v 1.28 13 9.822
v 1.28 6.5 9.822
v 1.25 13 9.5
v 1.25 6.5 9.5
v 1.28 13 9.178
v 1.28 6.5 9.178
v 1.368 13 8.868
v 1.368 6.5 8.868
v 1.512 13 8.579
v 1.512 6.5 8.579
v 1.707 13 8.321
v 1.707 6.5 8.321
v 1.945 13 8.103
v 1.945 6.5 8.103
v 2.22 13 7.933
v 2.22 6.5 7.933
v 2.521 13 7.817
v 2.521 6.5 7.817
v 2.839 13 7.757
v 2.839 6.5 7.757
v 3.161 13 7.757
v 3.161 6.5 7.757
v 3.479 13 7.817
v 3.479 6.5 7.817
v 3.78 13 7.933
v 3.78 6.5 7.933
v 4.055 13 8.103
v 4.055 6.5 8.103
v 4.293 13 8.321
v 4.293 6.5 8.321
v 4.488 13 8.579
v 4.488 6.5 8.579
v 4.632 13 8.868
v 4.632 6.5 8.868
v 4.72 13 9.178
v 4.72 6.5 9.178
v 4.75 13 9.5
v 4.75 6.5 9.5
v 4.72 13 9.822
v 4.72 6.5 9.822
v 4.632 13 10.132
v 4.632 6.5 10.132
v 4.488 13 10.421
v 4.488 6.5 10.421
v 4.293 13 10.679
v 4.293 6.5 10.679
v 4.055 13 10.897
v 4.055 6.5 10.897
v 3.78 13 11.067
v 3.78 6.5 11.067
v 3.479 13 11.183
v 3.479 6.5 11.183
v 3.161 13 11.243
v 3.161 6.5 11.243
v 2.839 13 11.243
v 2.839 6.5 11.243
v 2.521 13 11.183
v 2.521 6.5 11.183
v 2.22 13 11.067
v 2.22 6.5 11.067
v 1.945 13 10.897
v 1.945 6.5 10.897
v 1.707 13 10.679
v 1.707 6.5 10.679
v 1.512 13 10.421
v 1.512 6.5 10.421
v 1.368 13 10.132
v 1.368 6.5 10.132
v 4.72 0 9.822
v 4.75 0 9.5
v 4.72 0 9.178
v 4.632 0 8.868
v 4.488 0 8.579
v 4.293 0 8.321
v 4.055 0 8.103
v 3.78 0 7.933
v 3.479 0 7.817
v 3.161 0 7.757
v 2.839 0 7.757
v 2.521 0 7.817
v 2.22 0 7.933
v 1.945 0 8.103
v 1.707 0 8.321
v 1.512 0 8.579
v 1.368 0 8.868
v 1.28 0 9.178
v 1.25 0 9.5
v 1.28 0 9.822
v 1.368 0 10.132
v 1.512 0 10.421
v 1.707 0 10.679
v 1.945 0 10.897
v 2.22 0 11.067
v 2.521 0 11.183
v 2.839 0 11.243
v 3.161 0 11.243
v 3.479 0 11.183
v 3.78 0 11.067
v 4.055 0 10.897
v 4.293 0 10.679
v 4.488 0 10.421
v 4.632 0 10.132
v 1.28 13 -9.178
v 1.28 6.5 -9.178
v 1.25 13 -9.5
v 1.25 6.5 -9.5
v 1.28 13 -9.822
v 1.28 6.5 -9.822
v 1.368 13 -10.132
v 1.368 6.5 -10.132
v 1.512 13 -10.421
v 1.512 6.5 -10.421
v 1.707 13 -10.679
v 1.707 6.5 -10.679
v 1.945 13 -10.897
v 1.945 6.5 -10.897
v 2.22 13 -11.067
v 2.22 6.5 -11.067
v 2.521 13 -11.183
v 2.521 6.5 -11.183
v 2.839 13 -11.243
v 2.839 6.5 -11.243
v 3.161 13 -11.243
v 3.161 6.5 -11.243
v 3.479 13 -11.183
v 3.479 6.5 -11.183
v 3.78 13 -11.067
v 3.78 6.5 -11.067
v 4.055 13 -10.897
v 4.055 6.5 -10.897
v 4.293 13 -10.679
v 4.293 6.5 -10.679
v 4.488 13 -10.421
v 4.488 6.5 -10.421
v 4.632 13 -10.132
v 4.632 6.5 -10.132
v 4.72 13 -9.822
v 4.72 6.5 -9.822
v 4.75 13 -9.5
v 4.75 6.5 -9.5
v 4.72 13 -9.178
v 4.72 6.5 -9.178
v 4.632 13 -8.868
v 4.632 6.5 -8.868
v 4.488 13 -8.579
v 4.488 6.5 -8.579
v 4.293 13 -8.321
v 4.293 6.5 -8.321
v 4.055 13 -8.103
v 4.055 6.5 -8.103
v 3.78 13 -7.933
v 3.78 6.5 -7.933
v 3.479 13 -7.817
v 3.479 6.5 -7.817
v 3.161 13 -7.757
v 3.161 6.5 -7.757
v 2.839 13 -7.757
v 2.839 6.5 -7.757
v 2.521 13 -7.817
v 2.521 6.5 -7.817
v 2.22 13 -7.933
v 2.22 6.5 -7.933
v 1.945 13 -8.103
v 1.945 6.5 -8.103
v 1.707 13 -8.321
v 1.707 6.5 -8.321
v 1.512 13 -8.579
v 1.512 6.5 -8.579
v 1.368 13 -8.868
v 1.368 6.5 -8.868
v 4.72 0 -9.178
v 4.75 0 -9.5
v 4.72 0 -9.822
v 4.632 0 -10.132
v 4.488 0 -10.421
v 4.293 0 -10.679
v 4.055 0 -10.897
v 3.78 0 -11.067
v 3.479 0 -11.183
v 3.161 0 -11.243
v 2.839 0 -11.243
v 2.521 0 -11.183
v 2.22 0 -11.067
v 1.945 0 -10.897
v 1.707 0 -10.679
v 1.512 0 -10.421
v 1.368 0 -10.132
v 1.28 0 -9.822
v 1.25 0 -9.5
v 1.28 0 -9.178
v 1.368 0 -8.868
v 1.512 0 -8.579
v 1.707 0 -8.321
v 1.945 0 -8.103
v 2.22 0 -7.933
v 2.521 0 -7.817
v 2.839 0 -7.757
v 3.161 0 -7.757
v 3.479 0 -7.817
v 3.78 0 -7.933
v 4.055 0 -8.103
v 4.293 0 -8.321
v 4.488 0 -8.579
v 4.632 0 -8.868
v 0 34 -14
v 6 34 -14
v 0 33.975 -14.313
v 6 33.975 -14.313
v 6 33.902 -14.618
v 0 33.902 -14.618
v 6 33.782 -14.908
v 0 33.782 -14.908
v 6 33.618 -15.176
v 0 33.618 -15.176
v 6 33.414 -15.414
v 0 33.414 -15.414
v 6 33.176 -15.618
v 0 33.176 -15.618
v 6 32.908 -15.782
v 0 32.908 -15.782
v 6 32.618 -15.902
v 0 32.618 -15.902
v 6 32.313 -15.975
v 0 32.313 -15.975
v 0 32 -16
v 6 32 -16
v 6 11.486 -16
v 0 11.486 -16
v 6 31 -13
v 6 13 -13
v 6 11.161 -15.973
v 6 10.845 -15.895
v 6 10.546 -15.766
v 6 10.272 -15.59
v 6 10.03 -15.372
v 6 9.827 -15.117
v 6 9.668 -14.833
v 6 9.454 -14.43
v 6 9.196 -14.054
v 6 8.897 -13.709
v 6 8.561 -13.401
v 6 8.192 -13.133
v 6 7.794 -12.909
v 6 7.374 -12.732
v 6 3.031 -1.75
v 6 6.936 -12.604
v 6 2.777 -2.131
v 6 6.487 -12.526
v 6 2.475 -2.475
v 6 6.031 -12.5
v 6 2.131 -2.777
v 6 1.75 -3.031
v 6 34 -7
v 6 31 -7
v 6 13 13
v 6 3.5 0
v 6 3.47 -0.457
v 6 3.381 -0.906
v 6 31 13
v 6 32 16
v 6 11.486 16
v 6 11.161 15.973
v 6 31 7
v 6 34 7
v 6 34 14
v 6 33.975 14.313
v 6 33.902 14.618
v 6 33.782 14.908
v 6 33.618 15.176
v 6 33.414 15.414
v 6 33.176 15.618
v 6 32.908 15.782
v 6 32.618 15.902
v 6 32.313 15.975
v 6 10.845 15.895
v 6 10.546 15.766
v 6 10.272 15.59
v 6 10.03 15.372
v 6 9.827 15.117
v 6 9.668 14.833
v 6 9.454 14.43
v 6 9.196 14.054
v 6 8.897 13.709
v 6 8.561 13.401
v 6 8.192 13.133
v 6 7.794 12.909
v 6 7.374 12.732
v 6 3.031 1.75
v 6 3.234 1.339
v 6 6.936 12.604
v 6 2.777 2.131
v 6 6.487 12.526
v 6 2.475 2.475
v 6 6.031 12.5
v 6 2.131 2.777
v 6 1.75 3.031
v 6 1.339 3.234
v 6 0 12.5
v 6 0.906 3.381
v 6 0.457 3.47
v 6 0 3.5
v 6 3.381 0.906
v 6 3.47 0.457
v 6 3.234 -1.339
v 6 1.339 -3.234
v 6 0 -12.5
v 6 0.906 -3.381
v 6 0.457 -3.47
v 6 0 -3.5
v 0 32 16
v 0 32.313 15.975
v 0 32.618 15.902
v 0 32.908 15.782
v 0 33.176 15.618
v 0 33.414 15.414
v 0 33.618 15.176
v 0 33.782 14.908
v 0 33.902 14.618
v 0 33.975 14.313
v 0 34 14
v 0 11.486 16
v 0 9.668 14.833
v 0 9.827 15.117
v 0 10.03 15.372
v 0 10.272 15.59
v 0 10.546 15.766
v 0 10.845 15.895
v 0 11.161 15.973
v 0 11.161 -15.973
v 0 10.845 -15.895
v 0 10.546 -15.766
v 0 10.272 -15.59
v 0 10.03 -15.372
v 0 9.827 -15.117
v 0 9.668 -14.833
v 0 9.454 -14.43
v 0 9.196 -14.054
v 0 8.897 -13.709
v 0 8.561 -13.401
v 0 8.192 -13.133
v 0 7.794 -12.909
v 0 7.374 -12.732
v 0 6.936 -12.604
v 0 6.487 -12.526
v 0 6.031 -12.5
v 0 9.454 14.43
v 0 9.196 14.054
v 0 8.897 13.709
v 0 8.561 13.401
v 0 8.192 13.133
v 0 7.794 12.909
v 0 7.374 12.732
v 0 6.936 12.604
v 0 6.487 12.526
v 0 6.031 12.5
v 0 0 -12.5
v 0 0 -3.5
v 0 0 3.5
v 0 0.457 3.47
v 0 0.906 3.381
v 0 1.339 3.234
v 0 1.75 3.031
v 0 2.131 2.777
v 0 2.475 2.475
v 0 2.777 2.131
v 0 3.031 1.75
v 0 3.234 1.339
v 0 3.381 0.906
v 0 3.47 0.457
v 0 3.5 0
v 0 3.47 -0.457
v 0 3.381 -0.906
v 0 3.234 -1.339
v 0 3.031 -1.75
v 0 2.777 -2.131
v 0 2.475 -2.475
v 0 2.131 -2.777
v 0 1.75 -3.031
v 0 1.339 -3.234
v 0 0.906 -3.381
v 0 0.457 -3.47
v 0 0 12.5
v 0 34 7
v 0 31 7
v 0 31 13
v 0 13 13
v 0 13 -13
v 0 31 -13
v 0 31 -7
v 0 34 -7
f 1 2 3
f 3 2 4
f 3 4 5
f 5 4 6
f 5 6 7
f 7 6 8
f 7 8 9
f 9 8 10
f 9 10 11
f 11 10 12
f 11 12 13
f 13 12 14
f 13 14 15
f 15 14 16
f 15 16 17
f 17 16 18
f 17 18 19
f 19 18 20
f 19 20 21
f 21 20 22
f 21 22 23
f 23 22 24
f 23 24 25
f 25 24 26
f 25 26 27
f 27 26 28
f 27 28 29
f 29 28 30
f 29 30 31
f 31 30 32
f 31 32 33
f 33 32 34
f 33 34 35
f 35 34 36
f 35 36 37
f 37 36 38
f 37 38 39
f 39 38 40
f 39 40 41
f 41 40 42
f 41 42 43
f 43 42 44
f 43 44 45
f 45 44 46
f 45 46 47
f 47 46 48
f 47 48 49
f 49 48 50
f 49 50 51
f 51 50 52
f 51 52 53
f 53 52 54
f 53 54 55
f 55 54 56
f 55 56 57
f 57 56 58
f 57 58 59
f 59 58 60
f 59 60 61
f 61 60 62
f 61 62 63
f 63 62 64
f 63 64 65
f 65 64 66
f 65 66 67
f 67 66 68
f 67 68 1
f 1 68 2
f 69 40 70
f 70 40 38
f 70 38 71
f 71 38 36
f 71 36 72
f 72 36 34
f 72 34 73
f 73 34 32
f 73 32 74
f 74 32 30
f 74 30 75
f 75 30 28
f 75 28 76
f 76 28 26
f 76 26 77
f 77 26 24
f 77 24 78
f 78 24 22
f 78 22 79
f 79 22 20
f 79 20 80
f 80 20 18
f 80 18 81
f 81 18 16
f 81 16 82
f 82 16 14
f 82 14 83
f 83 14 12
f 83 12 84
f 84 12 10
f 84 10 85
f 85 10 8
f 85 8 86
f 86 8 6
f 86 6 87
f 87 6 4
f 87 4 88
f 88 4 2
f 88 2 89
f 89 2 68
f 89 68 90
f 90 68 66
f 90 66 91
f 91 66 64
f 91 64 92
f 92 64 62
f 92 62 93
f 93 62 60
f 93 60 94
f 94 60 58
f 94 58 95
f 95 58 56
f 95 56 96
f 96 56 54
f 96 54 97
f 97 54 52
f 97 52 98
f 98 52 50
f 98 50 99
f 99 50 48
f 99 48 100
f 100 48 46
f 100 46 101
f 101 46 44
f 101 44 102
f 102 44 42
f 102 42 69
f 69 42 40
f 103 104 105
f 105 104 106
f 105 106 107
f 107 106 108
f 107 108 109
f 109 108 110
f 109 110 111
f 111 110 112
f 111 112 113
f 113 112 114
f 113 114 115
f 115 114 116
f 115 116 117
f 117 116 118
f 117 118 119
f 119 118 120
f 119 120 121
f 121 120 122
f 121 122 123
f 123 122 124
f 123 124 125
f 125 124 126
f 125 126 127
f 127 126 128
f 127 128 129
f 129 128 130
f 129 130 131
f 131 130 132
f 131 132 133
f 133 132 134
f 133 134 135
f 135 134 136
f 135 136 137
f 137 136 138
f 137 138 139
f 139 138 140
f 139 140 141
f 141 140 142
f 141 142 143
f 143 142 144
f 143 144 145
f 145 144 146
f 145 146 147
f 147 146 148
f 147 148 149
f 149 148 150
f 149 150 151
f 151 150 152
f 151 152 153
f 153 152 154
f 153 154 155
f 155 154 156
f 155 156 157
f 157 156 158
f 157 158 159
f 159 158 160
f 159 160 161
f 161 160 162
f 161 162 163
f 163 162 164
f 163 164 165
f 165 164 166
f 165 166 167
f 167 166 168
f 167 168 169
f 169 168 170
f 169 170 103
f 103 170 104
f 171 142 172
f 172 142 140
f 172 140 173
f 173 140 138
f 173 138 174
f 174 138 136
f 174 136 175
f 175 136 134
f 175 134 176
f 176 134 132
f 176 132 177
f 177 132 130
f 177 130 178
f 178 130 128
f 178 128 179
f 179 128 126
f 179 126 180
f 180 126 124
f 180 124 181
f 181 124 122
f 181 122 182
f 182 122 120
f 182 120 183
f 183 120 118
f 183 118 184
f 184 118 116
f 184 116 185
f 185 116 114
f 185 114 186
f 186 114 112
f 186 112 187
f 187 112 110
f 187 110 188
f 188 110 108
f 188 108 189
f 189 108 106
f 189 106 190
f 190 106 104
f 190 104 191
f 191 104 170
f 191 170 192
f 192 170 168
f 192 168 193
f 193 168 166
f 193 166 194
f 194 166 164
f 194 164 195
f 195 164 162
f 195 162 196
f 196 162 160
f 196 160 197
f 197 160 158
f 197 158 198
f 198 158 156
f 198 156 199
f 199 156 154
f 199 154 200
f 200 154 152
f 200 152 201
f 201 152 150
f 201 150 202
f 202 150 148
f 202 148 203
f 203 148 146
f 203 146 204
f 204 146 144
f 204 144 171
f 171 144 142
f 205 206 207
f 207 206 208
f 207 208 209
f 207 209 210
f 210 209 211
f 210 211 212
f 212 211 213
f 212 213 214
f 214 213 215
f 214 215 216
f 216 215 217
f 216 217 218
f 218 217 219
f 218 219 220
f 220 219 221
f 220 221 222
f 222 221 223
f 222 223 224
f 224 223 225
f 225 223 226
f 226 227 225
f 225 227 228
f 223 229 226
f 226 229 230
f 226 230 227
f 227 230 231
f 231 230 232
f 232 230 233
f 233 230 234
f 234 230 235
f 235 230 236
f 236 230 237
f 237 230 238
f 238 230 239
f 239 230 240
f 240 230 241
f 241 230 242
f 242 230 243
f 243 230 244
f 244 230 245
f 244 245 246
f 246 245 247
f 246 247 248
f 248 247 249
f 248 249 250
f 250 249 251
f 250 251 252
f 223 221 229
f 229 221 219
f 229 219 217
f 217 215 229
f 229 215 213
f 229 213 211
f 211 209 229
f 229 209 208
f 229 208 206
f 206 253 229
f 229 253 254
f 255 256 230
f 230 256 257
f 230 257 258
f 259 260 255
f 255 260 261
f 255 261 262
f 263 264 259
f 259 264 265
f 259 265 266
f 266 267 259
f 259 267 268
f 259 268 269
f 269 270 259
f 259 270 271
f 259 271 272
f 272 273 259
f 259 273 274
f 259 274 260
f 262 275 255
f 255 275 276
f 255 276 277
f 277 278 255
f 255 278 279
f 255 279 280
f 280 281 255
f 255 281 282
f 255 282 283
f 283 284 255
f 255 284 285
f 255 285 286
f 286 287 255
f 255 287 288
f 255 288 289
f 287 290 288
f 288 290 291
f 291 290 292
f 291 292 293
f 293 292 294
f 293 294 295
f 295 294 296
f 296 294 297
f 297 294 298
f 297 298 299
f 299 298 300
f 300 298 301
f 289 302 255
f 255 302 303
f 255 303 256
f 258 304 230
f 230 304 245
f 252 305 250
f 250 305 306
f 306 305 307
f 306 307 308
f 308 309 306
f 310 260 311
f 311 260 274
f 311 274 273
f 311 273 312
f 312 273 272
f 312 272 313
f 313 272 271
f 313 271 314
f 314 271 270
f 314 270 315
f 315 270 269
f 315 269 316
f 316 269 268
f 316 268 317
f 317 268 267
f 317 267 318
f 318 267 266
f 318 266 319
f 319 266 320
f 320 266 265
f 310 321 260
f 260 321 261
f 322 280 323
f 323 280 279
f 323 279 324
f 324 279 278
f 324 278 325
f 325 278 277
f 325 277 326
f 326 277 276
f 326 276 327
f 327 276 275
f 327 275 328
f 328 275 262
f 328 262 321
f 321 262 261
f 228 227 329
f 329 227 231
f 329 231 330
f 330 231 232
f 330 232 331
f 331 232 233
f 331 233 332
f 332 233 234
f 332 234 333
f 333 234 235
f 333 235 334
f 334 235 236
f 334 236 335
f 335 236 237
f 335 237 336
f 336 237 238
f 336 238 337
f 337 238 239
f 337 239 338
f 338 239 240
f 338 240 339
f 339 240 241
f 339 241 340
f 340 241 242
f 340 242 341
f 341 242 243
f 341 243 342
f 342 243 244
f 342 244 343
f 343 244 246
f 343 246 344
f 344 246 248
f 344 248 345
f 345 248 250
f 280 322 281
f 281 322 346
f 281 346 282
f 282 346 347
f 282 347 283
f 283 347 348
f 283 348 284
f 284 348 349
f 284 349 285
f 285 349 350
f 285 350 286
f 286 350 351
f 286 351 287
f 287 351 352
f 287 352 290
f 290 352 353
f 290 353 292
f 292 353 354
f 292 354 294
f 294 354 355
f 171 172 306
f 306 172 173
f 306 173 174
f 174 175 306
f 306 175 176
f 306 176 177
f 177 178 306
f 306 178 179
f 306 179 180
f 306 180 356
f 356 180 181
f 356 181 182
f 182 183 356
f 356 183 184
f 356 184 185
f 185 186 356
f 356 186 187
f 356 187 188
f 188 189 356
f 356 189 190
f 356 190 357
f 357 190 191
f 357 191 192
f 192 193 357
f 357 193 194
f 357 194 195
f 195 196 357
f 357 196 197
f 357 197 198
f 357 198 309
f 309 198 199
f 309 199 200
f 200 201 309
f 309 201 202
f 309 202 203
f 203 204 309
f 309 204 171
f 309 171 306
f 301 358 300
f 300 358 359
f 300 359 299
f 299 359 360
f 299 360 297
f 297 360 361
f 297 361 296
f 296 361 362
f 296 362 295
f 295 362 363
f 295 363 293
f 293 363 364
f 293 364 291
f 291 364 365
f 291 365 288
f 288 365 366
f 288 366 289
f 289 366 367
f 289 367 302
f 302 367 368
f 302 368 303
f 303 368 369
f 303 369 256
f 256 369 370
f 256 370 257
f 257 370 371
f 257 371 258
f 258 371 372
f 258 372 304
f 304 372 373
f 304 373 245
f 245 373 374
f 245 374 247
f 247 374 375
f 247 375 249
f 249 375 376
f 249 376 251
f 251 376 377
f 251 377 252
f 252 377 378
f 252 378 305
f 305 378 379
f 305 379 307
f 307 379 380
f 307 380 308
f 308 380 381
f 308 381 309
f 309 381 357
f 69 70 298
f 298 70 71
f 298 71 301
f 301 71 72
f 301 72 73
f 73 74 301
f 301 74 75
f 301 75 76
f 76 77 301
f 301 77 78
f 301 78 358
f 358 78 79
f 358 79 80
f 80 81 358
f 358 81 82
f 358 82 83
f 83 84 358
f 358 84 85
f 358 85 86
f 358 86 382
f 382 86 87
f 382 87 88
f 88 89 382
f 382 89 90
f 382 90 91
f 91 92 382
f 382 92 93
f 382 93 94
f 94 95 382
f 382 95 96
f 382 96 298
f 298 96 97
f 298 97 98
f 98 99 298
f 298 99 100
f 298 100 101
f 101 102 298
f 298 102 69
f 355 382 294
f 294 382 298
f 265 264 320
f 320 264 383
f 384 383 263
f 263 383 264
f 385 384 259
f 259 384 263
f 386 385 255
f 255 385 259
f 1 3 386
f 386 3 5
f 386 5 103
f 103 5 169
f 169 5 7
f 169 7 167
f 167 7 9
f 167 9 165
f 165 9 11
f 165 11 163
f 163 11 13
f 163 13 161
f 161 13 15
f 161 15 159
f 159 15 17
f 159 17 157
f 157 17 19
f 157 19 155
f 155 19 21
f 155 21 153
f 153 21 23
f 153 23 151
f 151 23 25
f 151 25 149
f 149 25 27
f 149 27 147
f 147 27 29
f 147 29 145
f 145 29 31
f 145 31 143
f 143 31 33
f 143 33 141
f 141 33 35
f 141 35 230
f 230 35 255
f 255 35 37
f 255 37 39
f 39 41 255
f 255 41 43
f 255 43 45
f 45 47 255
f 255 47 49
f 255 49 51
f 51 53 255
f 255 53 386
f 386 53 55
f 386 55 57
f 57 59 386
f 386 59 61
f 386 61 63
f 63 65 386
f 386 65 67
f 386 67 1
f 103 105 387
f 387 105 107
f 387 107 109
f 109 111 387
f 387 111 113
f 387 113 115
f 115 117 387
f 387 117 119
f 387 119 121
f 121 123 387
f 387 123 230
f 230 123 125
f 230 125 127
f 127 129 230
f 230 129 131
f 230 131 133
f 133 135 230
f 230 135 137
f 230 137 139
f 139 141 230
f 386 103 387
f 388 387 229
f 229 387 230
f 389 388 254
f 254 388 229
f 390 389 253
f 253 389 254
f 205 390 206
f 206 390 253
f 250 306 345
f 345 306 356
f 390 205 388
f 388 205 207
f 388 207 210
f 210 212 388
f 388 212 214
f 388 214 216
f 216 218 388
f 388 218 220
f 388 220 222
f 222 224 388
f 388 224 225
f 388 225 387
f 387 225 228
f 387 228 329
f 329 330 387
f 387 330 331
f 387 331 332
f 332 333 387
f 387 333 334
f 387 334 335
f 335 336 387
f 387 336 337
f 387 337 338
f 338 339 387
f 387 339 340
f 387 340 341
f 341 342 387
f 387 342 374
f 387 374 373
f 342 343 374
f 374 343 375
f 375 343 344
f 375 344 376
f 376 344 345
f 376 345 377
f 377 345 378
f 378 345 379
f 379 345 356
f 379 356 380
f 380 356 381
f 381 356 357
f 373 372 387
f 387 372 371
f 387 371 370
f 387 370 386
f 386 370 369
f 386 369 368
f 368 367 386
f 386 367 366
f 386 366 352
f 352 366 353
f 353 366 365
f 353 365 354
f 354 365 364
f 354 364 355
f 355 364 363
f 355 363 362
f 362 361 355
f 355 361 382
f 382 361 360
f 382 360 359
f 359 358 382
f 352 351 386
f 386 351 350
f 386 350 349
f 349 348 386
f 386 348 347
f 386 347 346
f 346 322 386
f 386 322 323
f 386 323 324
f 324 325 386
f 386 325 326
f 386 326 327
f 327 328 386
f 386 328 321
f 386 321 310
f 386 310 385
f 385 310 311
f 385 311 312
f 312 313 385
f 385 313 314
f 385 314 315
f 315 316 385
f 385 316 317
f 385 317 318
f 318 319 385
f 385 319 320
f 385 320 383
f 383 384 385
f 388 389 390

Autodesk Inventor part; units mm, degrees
ref_plane "YZ Plane" through (0, 0, 0) normal (1, 0, 0) x (0, 1, 0)
ref_plane "XZ Plane" through (0, 0, 0) normal (0, 1, 0) x (-1, 0, 0)
ref_plane "XY Plane" through (0, 0, 0) normal (0, 0, 1) x (1, 0, 0)
sketch "Esquisse1" plane through (0, 0, 0) normal (1, 0, 0) x (0, 1, 0)
  arc A0 (0, -3.5) -> (0, 3.5) centre (0, 0) ccw
  line L0 (0, 6.2947) -> (0, -6.5718) construction
  line L1 (0, 3.5) -> (0, 12.5)
  line L2 (0, 12.5) -> (10, 12.5)
  line L3 (10, -12.5) -> (0, -12.5)
  line L4 (0, -12.5) -> (0, -3.5)
  line L5 (10, 12.5) -> (10, 16)
  line L6 (10, 16) -> (34, 16)
  line L7 (34, 16) -> (34, 7)
  line L8 (34, 7) -> (31, 7)
  line L9 (31, 7) -> (31, 13)
  line L10 (31, 13) -> (13, 13)
  line L11 (13, 13) -> (13, -13)
  line L12 (13, -13) -> (31, -13)
  line L13 (31, -13) -> (31, -7)
  line L14 (31, -7) -> (34, -7)
  line L15 (34, -7) -> (34, -16)
  line L16 (34, -16) -> (10, -16)
  line L17 (10, -16) -> (10, -12.5)
  point P0 (22, 13)
  dimension "d16" = 3.5
  dimension "d17" = 25
  dimension "d18" = 26
  dimension "d19" = 6
  dimension "d20" = 3
  dimension "d21" = 3
  dimension "d22" = 3
  dimension "d23" = 18
  dimension "d24" = 3
  dimension "d25" = 10
extrude "Extrusion1" add sketch "Esquisse1" along normal blind 6
fillet "Congé1" radius 4 2 edges at (3, 10, 12.5) (3, 10, -12.5)
fillet "Congé2" radius 2 2 edges at (3, 10, -16) (3, 10, 16)
fillet "Congé3" radius 2 2 edges at (3, 34, 16) (3, 34, -16)
sketch "Esquisse2" plane through (0, 0, -12.5) normal (0, -1, 0) x (1, 0, 0)
  circle A0 centre (3, 3) radius 1.75
  line L0 (0, -1.5) -> (0, 5.5) projected
  line L1 (6, -0.5) -> (6, 25.5) projected
  line L2 (0, -0.5) -> (0, 25.5) projected
  line L3 (0, 0) -> (6, 0) projected
  point P0 (0, 12.5)
  point P1 (3, 3)
  dimension "d28" = 3.5
  dimension "d31" = 3
  dimension "d32" = 3
extrude "Extrusion2" cut sketch "Esquisse2" against normal blind 15
mirror "Mise en miroir1" about plane through (0, 0, 0) normal (0, 0, 1) of "Extrusion2"
properties part number "Bras_1_Impression 3D"
